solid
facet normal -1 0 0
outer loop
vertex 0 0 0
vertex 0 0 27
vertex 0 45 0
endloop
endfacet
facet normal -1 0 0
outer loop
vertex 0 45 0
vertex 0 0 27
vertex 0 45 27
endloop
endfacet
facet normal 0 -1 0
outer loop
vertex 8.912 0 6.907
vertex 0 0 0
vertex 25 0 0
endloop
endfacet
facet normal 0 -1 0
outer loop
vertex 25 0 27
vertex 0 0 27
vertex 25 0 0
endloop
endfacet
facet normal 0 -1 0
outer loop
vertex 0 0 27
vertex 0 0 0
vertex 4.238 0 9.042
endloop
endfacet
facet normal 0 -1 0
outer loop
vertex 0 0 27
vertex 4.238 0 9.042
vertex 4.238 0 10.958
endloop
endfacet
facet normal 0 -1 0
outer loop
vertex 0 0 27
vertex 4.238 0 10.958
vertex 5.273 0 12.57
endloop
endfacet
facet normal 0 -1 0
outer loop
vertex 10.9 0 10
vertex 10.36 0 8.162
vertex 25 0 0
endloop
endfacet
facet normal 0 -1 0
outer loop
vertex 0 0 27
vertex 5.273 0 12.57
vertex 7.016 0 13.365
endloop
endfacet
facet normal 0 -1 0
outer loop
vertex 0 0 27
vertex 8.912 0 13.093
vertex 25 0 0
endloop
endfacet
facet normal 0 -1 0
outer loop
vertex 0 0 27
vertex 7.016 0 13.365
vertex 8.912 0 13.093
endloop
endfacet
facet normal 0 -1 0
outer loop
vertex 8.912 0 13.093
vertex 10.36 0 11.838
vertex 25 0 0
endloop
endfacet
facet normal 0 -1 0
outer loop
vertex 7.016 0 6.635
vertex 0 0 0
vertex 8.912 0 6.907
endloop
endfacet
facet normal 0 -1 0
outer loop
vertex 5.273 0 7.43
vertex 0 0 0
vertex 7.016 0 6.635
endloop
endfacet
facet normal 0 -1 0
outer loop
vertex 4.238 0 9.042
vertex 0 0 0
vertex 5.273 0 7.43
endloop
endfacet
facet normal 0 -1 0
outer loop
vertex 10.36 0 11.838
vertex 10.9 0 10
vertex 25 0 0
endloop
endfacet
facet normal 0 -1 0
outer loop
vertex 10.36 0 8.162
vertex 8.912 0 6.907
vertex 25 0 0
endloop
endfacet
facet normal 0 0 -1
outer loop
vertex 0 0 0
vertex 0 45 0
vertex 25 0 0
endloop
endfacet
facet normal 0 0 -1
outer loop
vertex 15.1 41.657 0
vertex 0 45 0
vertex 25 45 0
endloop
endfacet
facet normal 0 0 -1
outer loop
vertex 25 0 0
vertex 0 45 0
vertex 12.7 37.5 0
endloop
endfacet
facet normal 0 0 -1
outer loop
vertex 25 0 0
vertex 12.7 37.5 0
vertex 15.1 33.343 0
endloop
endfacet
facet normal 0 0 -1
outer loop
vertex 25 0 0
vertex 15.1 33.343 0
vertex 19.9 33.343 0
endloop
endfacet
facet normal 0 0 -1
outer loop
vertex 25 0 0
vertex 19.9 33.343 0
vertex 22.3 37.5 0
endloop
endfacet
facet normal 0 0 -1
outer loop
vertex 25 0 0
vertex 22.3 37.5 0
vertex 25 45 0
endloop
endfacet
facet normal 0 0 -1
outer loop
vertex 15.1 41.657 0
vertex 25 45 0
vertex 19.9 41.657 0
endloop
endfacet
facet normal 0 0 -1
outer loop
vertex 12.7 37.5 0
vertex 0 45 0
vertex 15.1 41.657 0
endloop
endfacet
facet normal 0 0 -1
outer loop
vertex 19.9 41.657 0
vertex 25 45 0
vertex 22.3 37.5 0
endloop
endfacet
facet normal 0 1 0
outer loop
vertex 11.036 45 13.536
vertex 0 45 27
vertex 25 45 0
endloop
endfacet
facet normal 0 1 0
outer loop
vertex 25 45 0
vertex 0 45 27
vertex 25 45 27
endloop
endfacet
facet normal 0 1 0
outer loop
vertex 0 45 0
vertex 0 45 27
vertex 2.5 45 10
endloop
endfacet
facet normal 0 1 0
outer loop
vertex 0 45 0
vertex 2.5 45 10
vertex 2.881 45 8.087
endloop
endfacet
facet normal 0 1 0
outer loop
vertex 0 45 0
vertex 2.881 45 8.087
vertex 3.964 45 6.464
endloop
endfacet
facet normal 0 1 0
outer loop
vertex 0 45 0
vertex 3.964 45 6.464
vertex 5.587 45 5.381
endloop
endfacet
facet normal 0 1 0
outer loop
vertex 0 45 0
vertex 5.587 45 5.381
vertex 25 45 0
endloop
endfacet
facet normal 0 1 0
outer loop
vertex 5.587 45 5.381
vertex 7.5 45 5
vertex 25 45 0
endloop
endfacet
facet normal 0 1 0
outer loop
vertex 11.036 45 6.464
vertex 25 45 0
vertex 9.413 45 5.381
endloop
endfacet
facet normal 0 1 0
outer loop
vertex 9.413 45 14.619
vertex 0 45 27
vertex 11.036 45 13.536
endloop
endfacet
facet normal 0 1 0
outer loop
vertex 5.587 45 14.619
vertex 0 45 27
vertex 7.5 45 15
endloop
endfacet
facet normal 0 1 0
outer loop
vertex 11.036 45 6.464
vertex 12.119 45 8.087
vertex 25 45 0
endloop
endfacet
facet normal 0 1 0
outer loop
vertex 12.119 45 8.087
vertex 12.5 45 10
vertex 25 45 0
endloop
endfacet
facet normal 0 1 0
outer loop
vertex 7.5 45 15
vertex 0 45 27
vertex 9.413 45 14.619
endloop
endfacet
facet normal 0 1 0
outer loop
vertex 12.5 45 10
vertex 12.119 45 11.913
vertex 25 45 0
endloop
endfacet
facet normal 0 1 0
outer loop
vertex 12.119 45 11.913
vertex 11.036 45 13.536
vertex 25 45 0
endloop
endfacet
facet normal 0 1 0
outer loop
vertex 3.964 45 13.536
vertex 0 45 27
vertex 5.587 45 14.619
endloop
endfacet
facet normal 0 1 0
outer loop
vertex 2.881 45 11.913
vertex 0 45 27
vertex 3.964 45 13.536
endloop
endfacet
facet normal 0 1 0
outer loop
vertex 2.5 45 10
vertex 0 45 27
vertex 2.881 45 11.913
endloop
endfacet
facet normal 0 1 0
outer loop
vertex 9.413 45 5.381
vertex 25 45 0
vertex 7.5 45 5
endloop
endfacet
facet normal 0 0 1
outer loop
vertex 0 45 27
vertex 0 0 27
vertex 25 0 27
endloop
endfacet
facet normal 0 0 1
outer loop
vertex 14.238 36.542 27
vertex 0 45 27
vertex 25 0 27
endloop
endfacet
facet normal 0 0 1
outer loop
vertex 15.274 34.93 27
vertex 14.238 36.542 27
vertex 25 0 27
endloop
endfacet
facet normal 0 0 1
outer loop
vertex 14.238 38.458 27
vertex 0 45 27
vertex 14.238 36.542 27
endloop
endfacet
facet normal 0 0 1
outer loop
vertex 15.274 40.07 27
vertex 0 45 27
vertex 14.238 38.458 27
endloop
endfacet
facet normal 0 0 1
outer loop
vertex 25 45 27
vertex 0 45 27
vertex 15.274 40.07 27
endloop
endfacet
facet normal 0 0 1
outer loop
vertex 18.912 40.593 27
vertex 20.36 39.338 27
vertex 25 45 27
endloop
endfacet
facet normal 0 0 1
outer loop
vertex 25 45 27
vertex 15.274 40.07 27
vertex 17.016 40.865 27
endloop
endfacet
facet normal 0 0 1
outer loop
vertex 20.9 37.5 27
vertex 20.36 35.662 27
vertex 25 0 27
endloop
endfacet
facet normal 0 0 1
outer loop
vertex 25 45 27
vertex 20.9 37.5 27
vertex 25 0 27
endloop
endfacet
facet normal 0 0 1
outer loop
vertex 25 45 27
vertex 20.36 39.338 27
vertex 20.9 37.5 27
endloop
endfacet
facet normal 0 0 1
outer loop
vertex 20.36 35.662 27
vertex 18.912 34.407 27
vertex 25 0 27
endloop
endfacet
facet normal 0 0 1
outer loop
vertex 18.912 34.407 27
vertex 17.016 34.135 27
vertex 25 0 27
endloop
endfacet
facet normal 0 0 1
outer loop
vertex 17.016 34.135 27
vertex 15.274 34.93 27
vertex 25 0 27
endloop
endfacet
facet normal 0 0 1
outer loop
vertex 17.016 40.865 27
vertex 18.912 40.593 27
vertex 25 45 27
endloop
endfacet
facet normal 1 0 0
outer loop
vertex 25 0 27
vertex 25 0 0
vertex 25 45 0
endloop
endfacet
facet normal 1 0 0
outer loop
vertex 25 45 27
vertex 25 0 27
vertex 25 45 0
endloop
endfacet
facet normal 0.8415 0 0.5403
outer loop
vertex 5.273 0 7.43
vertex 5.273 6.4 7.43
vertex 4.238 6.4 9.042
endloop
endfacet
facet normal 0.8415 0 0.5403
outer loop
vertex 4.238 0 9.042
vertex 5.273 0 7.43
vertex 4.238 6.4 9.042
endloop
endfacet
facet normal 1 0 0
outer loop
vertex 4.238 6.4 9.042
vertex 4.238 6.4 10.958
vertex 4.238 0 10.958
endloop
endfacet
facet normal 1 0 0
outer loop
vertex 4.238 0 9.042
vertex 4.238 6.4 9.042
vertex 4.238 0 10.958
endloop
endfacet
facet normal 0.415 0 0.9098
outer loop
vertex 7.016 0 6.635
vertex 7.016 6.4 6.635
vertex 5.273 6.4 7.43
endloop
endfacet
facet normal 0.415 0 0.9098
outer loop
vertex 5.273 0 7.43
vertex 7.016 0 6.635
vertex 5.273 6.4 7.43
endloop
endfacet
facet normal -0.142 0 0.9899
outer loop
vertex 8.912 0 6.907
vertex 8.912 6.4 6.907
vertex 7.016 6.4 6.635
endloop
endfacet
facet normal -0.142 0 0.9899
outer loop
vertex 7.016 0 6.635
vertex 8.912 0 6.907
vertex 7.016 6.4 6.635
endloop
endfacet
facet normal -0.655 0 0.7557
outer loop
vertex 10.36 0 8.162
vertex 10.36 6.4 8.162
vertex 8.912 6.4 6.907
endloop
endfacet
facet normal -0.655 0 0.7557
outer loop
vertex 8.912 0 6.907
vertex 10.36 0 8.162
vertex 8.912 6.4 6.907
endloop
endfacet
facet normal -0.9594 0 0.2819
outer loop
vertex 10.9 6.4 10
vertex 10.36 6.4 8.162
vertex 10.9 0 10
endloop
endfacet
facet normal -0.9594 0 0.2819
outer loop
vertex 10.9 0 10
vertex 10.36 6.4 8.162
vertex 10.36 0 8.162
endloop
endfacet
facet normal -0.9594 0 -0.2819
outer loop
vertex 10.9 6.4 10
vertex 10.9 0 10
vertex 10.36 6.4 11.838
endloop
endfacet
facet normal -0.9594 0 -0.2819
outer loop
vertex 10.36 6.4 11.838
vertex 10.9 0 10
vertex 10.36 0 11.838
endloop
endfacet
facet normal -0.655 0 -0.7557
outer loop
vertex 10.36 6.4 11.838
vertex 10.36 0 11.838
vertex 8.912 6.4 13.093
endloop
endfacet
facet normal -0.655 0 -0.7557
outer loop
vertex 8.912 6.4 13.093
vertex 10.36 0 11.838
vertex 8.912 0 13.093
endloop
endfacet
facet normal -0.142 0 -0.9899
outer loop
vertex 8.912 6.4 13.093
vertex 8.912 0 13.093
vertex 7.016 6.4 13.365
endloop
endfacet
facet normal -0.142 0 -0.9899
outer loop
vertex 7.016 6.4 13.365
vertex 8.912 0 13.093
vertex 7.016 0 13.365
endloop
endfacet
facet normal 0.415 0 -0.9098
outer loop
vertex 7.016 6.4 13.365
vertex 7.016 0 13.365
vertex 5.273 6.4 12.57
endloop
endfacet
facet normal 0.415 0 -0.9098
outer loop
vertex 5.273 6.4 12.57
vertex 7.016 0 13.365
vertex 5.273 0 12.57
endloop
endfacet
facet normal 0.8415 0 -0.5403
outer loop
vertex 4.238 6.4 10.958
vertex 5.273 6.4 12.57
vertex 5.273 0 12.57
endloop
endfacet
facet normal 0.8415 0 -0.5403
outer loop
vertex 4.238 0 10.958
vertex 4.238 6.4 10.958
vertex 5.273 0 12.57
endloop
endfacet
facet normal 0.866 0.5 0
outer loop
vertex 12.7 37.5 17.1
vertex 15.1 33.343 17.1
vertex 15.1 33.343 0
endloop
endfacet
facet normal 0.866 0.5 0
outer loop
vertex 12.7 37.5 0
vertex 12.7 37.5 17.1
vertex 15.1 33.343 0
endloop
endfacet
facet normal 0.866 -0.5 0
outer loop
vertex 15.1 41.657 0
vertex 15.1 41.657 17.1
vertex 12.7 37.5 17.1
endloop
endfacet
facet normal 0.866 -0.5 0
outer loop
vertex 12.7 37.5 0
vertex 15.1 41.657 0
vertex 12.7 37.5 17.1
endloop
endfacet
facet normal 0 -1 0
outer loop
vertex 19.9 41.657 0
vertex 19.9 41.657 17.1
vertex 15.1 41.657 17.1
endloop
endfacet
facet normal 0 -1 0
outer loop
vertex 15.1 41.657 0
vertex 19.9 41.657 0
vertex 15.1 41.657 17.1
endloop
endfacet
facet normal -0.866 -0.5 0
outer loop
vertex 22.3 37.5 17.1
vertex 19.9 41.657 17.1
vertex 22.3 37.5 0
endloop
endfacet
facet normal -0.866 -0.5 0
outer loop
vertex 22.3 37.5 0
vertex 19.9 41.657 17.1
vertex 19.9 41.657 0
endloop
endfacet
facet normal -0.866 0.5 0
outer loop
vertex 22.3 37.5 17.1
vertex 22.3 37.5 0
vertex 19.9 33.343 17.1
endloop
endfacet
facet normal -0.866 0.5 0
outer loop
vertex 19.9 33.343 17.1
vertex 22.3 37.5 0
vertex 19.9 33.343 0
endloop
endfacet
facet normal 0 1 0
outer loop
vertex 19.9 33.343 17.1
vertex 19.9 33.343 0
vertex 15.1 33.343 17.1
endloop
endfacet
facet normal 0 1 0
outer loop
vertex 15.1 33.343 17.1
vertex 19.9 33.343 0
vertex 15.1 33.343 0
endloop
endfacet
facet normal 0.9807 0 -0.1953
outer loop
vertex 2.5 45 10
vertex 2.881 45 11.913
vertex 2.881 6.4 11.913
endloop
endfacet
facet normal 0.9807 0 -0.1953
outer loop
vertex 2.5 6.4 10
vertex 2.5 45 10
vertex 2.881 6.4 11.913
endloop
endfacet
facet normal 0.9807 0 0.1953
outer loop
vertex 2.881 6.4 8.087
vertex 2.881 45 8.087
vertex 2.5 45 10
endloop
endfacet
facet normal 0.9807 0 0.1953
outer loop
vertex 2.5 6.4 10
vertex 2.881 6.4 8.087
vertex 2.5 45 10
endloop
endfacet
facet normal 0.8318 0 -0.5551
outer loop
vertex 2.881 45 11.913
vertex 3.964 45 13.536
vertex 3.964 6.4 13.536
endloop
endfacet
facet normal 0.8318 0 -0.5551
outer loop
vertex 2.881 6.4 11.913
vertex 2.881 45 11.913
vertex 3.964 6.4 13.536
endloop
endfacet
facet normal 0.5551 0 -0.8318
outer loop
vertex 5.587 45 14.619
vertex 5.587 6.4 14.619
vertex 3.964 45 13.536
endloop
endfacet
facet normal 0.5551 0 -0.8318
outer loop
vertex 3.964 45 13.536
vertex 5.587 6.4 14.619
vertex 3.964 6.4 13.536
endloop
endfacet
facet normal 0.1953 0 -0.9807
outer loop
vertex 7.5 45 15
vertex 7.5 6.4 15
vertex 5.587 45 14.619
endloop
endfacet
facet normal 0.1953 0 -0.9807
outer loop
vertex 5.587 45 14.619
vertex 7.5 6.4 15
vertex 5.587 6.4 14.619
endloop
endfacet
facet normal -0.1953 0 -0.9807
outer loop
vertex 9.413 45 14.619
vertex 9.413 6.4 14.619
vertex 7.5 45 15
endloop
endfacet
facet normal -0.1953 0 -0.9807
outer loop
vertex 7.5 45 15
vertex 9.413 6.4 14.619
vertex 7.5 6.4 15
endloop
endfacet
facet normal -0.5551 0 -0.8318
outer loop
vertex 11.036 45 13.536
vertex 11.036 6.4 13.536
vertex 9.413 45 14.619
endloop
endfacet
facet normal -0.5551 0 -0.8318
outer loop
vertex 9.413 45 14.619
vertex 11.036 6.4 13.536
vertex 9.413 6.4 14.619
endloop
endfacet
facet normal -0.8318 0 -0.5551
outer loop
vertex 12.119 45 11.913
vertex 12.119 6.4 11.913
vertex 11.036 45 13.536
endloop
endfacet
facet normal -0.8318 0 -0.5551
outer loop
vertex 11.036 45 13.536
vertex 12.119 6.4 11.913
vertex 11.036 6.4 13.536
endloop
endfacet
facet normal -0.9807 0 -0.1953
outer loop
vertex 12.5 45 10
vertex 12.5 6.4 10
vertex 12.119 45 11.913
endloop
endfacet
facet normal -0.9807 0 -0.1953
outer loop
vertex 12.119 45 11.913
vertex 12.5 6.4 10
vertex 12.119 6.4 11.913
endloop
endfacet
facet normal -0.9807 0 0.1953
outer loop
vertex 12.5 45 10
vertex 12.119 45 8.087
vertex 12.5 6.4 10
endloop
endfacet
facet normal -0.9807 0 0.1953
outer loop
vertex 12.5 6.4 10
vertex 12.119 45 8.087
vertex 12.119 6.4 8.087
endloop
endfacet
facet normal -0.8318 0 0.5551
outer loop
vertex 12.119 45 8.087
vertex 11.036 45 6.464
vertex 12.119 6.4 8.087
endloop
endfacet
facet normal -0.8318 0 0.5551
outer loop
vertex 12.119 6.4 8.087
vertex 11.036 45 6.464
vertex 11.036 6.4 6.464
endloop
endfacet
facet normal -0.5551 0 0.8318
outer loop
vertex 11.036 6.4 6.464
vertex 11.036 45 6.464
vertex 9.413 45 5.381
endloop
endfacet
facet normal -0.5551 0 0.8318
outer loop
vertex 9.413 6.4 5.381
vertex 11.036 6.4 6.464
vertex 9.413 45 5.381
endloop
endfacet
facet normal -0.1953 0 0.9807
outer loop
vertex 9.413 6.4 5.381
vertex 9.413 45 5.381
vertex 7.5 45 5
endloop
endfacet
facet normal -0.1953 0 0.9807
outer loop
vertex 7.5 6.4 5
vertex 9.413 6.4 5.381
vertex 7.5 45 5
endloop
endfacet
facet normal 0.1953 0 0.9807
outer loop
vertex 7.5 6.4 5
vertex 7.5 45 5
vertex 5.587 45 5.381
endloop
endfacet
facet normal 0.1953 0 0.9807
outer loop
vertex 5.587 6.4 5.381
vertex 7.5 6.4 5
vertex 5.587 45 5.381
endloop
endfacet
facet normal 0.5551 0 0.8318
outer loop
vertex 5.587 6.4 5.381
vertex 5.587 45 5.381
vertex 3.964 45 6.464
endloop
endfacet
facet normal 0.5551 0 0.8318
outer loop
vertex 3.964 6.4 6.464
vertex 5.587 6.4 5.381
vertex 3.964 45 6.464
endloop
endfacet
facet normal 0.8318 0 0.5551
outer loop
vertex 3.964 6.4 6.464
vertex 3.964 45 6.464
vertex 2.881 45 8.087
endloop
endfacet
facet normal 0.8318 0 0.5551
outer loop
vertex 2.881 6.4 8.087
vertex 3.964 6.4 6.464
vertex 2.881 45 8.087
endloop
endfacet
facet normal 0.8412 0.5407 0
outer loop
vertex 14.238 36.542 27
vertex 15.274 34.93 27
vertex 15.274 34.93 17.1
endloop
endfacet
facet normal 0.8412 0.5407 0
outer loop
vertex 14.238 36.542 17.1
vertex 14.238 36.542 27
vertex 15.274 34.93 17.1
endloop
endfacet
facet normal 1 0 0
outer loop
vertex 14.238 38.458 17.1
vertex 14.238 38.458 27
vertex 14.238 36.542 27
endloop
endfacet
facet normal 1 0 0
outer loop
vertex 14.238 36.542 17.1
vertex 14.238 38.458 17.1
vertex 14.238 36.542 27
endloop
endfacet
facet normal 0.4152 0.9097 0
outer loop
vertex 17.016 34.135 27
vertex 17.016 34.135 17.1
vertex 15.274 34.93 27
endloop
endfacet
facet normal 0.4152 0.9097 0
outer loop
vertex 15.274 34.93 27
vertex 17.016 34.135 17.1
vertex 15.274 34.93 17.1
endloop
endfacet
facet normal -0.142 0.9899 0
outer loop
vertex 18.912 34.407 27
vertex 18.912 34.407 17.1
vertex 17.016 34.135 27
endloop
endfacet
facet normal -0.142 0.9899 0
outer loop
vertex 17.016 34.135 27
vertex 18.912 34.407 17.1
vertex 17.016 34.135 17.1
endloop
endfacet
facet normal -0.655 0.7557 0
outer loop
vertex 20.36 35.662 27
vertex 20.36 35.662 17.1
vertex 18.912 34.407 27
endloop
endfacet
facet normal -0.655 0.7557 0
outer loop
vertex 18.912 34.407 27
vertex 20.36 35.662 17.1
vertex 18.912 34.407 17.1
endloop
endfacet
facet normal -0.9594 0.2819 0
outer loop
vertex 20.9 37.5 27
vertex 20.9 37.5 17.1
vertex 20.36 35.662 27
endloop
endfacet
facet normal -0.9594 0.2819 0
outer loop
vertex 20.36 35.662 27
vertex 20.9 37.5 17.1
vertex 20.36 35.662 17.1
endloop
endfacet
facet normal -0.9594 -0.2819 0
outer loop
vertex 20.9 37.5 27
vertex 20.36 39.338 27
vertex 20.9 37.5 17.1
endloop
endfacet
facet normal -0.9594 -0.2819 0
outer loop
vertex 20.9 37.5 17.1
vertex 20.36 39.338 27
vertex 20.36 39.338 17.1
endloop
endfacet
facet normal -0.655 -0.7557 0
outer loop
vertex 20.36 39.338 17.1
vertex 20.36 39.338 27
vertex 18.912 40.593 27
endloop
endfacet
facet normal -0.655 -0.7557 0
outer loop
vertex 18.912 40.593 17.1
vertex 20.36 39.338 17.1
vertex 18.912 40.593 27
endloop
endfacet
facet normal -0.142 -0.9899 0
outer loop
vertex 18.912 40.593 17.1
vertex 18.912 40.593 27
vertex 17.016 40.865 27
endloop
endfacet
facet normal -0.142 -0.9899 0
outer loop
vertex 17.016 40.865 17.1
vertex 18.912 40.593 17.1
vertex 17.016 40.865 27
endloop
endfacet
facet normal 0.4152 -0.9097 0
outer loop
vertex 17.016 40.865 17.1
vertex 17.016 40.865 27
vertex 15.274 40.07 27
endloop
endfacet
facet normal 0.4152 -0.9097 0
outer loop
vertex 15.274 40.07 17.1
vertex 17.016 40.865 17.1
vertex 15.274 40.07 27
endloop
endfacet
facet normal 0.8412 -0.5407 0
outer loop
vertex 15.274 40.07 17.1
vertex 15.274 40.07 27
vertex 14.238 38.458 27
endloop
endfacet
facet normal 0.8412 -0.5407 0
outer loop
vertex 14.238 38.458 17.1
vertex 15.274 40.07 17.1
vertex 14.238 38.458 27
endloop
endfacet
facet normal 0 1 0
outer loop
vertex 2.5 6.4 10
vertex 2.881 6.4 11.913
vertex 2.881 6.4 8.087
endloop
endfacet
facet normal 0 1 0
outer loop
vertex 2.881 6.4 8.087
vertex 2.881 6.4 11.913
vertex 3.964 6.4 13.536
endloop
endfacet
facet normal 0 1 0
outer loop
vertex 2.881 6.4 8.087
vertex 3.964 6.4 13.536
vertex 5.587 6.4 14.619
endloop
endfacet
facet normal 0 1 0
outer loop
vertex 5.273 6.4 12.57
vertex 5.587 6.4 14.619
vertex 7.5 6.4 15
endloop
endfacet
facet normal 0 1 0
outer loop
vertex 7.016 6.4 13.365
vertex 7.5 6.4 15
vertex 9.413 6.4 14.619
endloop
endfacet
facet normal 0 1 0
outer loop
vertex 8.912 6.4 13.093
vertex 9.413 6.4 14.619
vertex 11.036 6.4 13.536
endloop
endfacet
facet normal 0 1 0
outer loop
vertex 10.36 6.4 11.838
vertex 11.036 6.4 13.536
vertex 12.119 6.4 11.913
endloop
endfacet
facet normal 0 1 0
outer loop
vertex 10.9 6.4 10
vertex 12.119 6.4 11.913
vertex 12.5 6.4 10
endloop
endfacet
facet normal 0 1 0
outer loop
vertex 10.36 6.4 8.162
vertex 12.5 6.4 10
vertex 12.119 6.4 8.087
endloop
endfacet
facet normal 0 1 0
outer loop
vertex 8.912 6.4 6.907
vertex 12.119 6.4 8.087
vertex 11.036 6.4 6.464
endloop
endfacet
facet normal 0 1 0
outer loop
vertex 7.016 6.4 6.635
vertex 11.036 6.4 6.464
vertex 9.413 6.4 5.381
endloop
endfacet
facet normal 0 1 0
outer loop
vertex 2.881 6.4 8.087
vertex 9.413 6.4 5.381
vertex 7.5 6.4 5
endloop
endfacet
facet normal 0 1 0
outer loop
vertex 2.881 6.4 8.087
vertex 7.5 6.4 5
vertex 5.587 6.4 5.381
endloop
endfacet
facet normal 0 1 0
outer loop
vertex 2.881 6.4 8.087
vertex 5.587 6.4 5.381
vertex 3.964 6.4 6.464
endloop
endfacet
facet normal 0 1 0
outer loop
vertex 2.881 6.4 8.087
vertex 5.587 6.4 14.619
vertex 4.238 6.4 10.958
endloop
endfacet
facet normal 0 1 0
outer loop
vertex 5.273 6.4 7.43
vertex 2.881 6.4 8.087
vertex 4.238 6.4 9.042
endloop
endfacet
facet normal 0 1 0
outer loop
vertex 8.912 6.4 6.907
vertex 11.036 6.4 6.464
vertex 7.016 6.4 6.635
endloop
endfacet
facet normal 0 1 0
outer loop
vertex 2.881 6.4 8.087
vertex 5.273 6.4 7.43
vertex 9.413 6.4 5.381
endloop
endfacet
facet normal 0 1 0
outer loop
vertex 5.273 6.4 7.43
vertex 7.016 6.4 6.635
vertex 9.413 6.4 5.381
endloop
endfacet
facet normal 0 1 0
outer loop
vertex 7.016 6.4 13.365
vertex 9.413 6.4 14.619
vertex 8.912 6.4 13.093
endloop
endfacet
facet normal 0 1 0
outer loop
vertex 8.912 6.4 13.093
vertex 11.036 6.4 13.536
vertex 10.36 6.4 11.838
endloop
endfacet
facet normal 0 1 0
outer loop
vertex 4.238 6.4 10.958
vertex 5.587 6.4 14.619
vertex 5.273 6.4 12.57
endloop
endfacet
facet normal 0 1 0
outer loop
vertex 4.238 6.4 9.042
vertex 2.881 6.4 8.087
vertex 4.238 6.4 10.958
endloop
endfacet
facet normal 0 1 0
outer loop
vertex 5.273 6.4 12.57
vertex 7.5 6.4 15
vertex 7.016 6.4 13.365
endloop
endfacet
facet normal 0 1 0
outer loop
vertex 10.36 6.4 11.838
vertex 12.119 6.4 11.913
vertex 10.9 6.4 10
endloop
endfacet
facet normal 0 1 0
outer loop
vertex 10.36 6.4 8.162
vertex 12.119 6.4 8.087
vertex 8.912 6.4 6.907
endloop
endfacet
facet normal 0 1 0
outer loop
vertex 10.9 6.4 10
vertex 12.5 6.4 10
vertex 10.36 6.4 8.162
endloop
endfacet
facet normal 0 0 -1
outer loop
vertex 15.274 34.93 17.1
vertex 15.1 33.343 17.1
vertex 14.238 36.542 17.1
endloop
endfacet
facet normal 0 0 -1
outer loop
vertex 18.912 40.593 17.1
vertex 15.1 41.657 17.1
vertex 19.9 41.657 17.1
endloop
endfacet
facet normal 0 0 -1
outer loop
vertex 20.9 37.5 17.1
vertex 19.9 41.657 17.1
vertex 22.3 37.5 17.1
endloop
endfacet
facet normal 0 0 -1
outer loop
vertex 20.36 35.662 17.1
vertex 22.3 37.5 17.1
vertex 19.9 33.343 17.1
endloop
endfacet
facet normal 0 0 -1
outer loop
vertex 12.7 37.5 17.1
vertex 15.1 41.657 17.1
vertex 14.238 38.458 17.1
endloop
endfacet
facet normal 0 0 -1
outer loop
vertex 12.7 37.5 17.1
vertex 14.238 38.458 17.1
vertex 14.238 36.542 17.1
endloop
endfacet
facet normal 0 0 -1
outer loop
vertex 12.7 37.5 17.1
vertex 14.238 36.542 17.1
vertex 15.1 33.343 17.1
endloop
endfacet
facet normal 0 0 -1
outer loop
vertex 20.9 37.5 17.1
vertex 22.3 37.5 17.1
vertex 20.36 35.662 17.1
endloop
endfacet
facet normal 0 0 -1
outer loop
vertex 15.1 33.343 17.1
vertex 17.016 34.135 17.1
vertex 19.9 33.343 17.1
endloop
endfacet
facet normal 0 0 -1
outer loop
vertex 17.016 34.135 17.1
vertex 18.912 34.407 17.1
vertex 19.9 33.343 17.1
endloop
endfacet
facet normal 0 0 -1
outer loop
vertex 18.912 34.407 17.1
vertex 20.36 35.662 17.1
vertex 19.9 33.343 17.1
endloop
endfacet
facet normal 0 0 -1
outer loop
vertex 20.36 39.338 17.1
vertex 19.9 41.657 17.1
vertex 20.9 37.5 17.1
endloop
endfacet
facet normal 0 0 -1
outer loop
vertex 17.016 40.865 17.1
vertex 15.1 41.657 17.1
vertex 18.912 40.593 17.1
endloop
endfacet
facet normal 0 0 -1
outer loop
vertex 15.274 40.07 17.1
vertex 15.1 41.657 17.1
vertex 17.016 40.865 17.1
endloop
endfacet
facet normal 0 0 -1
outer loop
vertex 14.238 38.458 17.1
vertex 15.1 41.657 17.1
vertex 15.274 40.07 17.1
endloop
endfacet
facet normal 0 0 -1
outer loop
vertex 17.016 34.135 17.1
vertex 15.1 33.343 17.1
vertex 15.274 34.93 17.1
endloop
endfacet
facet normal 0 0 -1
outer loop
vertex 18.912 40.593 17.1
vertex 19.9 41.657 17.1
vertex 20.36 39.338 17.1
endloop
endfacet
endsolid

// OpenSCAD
length = 45;
thickness=25;
height=27;

slotWidth=4.5;
slotHeight=0.6;

difference(){
	cube([thickness,length,height]);
	#translate([17.5,length-7.5,height+0.1])rotate([180,0,0])m5ScrewNut(10,40);
	translate([7.5,-0.1,10])rotate([270,0,0])m5Screw(6.5,40);
}


module m5Screw(h=10,headH=3) {
	union() {
		cylinder(h=h,r=3.4);
		translate([0,0,h])cylinder(h=headH,r=5);
	}
}

module m5ScrewNut(h=10,headH=3) {
	union() {
		translate([0,0,0])cylinder(h=h,r=3.4);
		translate([0,0,h])cylinder(h=headH,r=9.6/2,$fn=6);
	}
}
